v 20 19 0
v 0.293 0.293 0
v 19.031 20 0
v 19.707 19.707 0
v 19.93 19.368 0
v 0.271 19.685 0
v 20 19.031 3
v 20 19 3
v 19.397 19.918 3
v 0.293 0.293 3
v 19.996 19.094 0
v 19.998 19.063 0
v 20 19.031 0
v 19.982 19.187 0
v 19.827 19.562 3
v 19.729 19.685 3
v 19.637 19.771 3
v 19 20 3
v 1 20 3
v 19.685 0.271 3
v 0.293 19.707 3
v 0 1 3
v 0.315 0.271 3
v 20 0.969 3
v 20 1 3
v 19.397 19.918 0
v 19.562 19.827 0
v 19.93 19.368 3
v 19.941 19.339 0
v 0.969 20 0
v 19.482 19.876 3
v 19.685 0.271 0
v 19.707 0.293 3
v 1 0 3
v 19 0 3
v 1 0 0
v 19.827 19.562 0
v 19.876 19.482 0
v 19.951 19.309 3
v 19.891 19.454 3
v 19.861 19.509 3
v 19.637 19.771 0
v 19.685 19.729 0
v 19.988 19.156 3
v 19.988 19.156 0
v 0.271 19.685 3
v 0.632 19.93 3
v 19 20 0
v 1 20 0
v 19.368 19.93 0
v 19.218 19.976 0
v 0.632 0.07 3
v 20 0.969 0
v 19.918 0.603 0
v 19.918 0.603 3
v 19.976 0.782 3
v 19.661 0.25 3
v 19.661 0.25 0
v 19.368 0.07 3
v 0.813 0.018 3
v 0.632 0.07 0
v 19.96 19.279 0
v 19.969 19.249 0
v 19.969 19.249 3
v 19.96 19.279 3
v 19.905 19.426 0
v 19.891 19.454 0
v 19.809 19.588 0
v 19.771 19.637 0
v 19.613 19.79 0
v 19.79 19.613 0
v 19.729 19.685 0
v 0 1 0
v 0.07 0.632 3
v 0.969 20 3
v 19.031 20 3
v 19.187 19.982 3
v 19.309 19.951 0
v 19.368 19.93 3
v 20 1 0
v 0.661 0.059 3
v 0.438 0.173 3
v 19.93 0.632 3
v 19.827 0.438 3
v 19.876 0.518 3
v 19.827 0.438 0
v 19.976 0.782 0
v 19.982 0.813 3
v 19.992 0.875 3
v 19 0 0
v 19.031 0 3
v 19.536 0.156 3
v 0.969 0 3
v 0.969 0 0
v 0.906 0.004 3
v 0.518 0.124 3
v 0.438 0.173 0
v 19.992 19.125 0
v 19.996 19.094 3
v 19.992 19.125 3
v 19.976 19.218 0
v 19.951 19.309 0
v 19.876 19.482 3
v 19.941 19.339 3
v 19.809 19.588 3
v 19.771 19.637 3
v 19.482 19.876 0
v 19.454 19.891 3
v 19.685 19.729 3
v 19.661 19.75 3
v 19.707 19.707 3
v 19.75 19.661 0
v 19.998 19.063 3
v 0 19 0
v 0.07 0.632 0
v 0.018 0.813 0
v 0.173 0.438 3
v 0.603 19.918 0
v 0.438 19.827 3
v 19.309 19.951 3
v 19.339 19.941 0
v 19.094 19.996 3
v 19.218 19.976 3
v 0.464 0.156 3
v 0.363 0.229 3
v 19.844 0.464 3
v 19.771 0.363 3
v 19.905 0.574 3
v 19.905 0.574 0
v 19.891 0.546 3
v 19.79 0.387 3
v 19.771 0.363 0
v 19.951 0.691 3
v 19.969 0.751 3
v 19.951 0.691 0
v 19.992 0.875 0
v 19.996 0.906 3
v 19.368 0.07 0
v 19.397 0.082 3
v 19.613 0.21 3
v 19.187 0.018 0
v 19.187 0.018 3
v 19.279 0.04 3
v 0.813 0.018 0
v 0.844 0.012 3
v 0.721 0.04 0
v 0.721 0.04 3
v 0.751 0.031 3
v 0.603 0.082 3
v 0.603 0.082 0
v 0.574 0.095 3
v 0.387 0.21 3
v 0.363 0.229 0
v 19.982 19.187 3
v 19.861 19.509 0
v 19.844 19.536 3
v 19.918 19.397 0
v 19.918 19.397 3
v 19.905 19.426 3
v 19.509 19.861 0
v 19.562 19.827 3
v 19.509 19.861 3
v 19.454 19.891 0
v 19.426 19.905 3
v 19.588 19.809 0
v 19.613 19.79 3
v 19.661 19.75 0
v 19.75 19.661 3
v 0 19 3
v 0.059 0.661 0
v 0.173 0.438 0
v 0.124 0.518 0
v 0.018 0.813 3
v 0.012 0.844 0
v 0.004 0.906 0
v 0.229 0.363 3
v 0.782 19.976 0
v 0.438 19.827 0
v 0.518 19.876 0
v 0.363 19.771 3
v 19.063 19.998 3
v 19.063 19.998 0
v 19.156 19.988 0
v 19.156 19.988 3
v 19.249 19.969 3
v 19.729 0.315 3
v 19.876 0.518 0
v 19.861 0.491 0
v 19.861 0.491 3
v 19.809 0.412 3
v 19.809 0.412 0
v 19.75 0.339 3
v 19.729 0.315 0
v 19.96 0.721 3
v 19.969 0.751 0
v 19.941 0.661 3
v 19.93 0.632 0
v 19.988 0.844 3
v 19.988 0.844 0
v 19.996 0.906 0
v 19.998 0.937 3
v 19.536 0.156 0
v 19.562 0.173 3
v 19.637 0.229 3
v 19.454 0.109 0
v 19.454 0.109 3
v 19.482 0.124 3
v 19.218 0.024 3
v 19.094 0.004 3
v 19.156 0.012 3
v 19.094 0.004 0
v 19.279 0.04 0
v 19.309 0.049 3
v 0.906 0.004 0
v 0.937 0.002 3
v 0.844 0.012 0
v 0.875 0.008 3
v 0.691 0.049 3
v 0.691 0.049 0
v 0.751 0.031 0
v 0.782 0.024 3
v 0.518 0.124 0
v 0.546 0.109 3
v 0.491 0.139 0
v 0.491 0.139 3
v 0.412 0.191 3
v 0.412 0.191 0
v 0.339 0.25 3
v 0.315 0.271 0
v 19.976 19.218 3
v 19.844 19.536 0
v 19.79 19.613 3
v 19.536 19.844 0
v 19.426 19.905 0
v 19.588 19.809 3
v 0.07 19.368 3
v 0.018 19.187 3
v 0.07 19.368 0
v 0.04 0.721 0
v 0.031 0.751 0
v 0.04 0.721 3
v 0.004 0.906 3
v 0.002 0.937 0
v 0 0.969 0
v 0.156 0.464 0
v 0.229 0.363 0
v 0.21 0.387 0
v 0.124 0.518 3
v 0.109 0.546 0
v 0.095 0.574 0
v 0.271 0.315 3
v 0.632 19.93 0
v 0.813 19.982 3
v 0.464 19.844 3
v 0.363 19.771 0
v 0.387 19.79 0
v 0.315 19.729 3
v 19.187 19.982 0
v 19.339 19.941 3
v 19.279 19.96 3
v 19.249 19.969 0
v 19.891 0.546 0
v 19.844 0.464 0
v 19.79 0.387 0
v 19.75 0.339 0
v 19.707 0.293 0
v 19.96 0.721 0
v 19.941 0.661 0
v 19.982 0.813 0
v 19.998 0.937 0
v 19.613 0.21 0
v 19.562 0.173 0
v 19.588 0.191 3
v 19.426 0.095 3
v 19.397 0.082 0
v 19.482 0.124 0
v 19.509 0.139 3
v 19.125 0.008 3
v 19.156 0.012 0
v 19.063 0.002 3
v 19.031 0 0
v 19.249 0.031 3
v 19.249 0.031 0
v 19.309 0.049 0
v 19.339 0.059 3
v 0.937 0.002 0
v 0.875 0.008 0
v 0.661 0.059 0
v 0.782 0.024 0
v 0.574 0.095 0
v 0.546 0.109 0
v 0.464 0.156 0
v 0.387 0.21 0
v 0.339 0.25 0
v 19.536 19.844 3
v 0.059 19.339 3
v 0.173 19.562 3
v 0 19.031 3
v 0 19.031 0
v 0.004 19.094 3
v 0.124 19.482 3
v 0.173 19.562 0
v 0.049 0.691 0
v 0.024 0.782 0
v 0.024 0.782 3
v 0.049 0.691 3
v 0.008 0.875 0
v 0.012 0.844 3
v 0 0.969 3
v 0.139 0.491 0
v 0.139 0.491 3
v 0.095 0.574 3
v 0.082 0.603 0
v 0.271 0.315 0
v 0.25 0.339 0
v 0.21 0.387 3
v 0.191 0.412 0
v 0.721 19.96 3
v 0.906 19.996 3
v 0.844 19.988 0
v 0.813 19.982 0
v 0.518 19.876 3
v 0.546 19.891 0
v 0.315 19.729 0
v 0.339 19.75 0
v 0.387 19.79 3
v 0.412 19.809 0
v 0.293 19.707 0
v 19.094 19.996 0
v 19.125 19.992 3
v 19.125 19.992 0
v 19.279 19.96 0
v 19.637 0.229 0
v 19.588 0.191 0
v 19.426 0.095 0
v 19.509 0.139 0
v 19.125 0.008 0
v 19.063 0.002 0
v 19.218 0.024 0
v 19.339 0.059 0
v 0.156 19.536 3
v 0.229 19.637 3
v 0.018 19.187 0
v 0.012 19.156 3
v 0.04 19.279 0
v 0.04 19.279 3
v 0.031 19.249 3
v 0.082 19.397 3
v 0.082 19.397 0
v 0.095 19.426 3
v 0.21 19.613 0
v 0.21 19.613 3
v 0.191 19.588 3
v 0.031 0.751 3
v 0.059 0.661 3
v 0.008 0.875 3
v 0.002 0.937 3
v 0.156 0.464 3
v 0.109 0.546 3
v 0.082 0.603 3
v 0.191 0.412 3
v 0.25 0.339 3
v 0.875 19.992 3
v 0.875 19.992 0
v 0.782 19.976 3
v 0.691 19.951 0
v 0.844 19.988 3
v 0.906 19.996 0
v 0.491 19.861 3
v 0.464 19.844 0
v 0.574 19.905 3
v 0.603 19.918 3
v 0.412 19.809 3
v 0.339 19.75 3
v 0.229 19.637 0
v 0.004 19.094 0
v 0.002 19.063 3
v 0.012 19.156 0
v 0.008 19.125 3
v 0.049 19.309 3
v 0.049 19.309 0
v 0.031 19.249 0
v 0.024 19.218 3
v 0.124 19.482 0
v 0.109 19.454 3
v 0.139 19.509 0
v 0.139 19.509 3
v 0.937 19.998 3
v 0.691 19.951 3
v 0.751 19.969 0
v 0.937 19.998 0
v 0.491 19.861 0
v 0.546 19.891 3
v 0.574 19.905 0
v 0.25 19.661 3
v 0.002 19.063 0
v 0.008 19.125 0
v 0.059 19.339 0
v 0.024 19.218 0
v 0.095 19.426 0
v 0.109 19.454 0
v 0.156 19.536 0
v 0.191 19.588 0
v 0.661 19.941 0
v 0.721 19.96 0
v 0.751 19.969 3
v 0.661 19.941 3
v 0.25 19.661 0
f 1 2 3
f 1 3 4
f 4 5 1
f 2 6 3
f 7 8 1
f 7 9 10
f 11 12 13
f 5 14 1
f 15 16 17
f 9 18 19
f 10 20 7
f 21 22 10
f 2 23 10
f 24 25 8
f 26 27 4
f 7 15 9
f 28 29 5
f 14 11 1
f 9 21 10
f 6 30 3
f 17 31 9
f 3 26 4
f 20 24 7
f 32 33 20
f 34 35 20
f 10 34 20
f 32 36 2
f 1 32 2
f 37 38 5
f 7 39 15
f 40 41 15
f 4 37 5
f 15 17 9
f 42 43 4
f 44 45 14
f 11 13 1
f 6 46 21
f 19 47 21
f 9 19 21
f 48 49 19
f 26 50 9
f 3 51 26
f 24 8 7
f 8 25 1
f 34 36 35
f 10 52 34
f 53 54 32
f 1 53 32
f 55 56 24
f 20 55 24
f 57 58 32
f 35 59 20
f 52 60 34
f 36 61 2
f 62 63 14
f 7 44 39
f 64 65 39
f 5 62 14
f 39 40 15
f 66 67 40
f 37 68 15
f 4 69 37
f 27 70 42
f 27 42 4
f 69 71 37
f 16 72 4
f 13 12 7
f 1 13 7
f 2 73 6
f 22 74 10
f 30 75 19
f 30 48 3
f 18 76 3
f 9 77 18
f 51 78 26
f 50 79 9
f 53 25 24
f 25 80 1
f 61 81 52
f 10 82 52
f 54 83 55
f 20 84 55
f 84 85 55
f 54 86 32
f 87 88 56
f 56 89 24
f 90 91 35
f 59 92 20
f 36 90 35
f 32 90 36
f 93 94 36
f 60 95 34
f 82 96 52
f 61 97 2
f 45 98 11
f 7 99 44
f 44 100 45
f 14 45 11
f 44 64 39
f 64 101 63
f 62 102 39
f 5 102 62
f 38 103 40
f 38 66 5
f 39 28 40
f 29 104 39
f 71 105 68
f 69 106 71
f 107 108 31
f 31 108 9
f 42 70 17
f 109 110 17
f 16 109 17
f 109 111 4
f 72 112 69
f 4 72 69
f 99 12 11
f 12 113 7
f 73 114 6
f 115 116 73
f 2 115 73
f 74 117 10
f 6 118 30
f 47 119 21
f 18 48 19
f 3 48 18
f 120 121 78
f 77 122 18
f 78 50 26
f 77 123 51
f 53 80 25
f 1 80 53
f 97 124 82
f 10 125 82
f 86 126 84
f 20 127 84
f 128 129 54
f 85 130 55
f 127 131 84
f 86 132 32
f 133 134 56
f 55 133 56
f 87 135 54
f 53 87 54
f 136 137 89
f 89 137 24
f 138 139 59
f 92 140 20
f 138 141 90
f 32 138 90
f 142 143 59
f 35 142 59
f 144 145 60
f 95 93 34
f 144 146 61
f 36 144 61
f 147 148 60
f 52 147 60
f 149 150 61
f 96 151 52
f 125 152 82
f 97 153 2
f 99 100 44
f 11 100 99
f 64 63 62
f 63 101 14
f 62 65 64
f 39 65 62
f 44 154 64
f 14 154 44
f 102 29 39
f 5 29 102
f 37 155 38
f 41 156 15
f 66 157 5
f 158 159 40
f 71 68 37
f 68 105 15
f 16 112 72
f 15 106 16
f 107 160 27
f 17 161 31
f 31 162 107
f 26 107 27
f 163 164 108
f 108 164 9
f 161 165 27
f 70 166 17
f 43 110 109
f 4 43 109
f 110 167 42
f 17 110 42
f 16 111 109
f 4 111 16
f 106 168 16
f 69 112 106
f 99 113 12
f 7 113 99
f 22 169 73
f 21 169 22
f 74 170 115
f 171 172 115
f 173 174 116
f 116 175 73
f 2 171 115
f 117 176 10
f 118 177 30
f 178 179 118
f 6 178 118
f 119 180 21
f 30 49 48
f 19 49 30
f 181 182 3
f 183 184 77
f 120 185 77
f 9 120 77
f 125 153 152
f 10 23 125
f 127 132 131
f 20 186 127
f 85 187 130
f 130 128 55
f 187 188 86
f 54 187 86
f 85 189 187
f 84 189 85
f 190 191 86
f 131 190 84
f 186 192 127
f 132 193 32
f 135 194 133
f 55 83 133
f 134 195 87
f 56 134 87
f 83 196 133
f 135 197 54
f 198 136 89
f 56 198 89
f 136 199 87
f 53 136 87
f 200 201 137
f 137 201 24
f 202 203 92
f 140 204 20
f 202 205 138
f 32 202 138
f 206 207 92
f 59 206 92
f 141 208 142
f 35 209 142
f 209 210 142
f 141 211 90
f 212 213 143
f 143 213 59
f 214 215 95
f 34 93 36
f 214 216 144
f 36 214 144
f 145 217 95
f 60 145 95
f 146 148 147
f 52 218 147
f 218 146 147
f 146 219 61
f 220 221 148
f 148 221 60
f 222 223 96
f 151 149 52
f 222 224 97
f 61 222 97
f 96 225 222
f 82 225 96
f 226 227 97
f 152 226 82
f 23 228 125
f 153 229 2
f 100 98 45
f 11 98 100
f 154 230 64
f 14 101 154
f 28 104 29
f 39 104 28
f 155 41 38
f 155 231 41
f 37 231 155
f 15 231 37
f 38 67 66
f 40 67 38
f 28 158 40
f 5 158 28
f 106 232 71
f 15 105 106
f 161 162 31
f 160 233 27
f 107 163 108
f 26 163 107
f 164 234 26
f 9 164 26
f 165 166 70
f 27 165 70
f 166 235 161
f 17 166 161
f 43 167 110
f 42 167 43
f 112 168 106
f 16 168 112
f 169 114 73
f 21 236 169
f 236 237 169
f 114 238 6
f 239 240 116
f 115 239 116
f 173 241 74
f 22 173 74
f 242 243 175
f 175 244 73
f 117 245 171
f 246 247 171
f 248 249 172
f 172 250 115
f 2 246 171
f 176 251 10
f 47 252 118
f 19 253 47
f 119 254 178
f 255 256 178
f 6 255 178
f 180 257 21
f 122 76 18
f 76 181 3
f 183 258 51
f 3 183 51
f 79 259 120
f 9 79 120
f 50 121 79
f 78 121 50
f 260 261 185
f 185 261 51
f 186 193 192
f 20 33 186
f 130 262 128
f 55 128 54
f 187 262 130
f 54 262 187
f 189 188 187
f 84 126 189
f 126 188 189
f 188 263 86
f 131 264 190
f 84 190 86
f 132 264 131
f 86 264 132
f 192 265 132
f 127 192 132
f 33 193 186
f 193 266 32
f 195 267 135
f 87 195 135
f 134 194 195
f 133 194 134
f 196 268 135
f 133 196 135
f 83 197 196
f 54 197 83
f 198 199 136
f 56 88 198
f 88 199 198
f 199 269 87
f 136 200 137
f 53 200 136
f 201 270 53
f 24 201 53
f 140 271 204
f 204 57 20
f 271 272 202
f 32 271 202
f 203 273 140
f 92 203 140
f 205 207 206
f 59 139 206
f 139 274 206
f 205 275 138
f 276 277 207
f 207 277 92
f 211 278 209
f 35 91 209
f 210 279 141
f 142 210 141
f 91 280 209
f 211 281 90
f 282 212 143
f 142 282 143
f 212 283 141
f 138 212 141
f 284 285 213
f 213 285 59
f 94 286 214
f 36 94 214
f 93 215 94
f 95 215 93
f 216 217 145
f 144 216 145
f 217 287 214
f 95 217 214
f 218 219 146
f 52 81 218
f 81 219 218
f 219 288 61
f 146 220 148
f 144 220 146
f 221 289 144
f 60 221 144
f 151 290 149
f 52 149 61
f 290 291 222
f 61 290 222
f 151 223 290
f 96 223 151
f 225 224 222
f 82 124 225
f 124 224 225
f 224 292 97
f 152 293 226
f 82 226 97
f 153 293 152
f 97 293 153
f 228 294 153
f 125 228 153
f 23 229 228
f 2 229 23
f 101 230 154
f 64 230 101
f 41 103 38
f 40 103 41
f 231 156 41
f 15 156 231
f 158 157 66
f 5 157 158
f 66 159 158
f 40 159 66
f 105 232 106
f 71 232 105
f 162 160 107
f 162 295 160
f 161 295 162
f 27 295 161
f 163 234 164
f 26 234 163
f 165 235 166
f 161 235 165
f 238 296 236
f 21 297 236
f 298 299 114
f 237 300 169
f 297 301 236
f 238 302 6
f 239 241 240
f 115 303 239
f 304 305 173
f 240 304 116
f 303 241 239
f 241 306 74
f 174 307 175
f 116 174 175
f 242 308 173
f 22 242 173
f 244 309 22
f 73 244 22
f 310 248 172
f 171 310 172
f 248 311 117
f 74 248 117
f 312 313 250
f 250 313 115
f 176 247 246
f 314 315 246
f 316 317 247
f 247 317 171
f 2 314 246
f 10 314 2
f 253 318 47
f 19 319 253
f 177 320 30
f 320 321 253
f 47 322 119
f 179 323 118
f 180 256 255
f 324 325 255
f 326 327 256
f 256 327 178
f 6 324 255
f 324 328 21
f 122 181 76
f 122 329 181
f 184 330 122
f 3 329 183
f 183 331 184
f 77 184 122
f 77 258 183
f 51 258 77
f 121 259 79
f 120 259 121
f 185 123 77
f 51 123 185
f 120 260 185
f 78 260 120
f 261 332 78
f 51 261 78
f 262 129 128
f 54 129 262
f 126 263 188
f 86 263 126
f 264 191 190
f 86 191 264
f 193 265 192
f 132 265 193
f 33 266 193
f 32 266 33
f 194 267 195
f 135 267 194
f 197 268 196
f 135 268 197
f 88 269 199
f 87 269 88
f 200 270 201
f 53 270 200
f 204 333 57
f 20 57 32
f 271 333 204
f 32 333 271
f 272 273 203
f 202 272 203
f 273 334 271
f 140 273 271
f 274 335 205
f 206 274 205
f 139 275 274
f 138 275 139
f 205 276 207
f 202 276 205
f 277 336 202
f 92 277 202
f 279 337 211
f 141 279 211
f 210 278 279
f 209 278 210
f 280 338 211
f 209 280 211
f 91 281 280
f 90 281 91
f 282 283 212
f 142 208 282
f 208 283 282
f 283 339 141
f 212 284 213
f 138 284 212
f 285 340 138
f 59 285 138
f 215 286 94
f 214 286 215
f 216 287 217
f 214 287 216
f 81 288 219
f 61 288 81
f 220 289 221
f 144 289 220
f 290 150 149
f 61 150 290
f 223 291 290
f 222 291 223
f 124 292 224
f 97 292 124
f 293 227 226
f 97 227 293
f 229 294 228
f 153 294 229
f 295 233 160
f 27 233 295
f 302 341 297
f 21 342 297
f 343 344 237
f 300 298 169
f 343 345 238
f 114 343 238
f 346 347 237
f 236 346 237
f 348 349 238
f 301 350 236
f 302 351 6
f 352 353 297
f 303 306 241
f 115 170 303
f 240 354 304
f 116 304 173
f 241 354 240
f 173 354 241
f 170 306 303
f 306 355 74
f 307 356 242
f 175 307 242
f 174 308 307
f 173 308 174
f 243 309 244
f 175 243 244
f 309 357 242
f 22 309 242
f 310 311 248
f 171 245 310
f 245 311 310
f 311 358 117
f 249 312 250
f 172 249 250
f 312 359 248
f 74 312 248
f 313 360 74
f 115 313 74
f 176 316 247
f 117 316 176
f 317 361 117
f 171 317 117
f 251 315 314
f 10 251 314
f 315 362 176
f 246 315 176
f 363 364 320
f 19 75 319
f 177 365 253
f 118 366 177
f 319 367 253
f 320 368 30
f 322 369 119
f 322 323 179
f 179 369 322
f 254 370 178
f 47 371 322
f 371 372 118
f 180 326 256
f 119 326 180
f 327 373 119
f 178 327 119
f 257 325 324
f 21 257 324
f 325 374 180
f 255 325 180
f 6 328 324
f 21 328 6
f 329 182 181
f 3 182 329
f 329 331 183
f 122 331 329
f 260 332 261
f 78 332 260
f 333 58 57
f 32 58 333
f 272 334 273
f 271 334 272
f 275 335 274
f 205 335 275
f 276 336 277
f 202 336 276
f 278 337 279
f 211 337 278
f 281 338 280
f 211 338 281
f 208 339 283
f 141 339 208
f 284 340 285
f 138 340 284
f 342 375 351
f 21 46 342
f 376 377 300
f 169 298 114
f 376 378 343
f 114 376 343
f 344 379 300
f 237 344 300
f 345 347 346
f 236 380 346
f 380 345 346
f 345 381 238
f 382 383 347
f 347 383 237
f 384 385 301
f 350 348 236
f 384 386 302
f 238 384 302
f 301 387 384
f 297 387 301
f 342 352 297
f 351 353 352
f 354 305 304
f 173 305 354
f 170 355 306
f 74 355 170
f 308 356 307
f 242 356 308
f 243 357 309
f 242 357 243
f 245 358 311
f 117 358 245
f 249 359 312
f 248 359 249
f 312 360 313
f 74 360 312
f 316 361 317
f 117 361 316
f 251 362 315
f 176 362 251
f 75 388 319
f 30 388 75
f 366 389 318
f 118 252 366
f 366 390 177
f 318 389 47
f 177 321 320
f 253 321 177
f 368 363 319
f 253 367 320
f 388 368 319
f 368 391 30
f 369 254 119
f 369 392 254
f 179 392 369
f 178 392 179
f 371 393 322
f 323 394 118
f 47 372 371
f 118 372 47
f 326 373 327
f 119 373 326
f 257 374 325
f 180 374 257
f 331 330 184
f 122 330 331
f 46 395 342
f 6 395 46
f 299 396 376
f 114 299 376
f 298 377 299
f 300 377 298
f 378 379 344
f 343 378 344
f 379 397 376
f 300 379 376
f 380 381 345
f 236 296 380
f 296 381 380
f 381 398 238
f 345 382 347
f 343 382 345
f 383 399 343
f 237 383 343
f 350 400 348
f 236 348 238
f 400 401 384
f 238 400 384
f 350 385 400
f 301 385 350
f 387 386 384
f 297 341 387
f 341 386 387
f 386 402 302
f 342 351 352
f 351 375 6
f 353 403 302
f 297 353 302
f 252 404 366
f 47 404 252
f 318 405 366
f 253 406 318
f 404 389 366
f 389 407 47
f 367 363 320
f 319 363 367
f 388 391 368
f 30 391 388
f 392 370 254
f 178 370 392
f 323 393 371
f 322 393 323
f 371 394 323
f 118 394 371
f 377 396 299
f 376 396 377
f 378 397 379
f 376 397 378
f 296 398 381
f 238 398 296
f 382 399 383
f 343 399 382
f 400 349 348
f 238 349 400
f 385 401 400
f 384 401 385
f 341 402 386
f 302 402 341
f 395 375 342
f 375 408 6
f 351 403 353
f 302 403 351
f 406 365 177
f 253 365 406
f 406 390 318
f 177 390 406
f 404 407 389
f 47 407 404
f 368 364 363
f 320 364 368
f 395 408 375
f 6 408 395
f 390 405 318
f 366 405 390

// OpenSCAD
$fn = 200;

minkowski(){
    translate([1,1,0]) cube([18, 18, 2]);
    cylinder(1,1,1);
}
